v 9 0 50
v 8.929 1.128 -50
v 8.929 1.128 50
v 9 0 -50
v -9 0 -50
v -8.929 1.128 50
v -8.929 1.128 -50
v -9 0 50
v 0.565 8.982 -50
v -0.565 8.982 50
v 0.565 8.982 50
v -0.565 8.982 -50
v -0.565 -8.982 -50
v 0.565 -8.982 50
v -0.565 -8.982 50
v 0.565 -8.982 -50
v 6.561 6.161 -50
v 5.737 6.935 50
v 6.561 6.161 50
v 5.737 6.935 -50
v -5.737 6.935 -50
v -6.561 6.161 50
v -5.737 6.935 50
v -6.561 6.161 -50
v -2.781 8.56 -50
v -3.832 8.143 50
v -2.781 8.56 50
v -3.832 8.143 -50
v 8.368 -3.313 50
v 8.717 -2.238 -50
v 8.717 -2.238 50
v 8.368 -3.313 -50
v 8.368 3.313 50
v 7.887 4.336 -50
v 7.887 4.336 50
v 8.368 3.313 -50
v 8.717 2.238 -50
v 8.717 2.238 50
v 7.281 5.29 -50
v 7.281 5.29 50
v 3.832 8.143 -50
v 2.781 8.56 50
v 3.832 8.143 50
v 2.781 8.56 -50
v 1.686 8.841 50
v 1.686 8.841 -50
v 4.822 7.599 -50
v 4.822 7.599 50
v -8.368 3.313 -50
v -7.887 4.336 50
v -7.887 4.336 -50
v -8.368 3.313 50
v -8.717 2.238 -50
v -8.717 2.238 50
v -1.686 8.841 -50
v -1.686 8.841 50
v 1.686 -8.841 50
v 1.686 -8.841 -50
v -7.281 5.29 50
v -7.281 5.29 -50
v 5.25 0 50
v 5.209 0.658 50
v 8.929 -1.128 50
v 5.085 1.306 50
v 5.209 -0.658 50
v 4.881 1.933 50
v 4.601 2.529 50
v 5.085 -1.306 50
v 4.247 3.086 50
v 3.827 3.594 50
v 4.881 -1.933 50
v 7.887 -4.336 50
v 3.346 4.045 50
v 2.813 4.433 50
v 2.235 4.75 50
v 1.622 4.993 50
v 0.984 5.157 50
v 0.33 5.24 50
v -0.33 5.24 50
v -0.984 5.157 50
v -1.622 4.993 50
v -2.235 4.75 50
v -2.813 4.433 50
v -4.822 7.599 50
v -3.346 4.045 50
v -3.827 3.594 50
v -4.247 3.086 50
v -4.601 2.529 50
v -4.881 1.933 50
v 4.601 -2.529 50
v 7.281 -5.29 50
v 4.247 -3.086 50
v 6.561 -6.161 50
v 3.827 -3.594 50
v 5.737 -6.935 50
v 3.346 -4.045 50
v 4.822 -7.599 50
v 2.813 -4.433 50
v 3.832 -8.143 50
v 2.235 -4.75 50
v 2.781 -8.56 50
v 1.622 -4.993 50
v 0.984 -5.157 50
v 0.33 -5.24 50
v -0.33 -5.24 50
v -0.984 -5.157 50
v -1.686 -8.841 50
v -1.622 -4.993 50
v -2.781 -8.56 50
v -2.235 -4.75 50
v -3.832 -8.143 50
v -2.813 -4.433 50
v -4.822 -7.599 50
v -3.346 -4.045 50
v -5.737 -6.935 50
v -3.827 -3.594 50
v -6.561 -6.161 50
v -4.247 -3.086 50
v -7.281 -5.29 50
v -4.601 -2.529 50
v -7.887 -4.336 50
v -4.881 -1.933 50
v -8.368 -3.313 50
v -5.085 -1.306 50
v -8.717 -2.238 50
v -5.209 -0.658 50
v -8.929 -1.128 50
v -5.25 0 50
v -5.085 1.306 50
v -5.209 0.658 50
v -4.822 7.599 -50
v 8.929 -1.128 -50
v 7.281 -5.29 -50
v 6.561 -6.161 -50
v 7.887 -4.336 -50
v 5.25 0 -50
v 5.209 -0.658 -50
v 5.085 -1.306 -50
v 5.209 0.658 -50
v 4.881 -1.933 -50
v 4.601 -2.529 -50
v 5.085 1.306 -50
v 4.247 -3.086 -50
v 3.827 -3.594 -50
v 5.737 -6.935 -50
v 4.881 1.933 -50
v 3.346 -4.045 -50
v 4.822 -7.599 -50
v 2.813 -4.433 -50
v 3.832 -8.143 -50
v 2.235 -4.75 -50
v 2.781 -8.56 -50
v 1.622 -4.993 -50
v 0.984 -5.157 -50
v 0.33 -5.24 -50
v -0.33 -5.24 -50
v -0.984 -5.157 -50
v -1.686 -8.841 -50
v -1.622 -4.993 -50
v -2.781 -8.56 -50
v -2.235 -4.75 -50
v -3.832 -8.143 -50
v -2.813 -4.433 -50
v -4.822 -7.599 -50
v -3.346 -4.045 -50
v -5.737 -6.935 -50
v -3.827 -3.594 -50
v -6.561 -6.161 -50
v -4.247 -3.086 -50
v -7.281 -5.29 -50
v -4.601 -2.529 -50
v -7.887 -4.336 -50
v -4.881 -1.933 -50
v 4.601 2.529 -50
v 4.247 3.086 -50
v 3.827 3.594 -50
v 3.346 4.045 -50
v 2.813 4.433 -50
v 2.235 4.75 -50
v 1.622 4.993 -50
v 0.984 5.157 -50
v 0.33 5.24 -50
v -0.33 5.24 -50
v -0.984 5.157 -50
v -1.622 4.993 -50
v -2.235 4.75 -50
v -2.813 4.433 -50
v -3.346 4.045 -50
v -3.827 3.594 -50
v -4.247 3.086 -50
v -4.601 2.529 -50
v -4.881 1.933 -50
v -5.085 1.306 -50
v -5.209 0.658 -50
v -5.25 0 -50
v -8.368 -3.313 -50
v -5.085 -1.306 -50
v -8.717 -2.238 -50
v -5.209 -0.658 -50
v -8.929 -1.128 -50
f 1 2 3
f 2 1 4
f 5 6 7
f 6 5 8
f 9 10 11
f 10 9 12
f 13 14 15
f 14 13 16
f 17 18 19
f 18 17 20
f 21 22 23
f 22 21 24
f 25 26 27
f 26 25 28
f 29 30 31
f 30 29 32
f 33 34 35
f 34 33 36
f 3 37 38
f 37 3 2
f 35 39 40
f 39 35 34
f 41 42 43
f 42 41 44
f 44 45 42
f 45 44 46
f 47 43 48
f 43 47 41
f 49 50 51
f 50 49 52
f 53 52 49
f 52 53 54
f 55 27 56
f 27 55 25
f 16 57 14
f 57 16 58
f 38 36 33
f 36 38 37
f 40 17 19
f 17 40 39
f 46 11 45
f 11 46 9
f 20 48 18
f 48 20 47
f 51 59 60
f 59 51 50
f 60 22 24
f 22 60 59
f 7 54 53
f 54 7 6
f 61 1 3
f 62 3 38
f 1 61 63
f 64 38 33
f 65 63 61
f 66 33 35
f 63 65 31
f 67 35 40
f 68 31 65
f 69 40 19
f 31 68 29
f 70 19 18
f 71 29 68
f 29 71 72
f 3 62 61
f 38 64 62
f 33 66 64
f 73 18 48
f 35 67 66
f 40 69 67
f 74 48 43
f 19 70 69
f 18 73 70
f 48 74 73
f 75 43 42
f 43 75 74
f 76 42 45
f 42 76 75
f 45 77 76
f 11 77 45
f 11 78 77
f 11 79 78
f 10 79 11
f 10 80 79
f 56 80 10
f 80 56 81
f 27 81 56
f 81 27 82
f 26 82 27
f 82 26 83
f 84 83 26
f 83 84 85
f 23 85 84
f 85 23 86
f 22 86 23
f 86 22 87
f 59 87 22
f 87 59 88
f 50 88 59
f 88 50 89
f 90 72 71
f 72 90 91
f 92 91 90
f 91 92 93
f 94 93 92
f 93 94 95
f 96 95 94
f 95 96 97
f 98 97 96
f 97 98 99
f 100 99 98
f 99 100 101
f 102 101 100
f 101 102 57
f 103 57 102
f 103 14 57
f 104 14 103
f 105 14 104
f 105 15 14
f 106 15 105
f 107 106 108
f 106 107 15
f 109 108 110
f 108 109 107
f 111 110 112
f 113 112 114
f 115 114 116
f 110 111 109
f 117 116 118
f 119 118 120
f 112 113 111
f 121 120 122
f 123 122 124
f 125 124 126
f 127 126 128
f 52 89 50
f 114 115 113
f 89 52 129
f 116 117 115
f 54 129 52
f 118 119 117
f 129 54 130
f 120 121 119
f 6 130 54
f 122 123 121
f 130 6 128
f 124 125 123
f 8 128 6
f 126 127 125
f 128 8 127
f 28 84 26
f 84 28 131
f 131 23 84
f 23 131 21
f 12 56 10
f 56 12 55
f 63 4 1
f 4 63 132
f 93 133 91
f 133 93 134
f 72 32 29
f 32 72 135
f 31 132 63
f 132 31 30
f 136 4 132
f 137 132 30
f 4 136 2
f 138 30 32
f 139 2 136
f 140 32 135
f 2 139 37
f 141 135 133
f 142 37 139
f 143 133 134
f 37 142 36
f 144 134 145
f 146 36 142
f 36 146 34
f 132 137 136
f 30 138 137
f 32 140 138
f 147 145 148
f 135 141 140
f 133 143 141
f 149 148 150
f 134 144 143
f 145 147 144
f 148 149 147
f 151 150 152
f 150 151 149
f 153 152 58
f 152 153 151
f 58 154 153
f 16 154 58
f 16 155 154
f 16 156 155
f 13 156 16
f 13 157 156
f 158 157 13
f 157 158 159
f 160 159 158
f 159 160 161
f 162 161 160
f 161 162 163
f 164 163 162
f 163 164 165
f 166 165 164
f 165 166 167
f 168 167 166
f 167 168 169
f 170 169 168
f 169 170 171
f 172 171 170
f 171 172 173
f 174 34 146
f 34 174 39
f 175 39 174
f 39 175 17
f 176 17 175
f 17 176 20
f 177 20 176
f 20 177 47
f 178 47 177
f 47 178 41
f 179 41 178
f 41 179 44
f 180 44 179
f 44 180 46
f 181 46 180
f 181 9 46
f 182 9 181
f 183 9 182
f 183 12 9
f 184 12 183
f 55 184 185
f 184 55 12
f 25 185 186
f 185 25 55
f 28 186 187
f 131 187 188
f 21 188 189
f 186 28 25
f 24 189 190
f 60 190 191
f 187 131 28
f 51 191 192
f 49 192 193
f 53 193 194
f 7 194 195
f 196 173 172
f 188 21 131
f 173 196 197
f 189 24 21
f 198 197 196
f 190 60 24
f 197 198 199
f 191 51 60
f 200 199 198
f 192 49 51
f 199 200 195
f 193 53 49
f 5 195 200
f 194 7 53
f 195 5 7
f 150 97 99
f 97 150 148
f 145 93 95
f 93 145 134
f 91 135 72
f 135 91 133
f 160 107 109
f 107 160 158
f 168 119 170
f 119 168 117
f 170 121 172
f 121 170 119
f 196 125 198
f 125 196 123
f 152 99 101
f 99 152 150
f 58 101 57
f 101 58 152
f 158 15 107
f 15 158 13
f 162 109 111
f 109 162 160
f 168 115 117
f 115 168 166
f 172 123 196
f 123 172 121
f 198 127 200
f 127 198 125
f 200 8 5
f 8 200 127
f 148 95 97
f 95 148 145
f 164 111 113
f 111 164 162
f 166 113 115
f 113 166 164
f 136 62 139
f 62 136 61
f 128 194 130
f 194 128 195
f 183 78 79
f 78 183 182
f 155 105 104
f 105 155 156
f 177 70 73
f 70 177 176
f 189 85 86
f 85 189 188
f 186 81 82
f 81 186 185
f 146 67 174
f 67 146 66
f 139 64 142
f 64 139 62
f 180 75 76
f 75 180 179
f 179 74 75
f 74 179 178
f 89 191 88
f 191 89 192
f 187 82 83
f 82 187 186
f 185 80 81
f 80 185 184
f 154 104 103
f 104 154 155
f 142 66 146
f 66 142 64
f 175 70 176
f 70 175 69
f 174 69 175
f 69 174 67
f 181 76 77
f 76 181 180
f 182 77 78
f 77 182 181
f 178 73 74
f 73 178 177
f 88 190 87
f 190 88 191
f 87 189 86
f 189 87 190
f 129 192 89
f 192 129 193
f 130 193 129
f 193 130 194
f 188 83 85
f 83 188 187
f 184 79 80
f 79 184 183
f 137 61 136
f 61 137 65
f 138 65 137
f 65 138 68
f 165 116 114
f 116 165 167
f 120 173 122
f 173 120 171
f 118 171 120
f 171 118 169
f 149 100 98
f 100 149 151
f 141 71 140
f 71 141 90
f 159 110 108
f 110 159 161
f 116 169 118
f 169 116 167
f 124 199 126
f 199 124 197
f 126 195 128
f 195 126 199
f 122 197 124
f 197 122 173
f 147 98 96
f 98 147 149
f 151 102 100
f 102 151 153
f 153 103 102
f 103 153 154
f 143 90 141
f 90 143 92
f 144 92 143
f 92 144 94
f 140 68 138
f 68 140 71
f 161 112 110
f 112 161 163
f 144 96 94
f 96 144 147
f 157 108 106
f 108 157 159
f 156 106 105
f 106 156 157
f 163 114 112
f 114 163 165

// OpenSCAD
$fn = 50;


difference() {
	union() {
		translate(v = [0, 0, -50.0000000000]) {
			cylinder(h = 100, r = 9.0000000000);
		}
	}
	union() {
		translate(v = [0, 0, -100.0000000000]) {
			cylinder(h = 200, r = 5.2500000000);
		}
	}
}
